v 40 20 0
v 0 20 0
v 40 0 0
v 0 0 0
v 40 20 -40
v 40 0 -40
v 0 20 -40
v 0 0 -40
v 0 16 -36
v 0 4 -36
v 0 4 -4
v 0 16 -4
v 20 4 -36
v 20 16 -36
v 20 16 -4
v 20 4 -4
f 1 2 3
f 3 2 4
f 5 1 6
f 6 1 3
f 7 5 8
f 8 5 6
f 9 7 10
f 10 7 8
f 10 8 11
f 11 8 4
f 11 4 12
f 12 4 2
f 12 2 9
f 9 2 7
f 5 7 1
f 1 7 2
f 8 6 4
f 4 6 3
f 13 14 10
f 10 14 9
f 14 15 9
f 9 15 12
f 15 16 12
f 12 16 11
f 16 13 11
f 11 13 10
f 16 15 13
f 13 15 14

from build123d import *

# Parameters (mm, degrees)
SKETCH_1_W          = 40
SKETCH_1_H          = 40
EXTRUDE_2_DEPTH     = 20
SKETCH_2_W          = 32
SKETCH_2_H          = 12
CUT_EXTRUDE_1_DEPTH = 20


with BuildPart() as part:
    # 草图1 → 凸台-拉伸2 (new body)
    with BuildSketch(Plane(origin=(0, 0, 0), x_dir=(1, 0, 0), z_dir=(0, 1, 0))):
        with Locations((20, 20)):
            Rectangle(SKETCH_1_W, SKETCH_1_H)
    extrude(amount=EXTRUDE_2_DEPTH)

    # 草图2 → 切除-拉伸1 (cut)
    with BuildSketch(Plane.ZY):
        with Locations((-20, 10)):
            Rectangle(SKETCH_2_W, SKETCH_2_H)
    extrude(amount=-CUT_EXTRUDE_1_DEPTH, mode=Mode.SUBTRACT)


solid = part.part
